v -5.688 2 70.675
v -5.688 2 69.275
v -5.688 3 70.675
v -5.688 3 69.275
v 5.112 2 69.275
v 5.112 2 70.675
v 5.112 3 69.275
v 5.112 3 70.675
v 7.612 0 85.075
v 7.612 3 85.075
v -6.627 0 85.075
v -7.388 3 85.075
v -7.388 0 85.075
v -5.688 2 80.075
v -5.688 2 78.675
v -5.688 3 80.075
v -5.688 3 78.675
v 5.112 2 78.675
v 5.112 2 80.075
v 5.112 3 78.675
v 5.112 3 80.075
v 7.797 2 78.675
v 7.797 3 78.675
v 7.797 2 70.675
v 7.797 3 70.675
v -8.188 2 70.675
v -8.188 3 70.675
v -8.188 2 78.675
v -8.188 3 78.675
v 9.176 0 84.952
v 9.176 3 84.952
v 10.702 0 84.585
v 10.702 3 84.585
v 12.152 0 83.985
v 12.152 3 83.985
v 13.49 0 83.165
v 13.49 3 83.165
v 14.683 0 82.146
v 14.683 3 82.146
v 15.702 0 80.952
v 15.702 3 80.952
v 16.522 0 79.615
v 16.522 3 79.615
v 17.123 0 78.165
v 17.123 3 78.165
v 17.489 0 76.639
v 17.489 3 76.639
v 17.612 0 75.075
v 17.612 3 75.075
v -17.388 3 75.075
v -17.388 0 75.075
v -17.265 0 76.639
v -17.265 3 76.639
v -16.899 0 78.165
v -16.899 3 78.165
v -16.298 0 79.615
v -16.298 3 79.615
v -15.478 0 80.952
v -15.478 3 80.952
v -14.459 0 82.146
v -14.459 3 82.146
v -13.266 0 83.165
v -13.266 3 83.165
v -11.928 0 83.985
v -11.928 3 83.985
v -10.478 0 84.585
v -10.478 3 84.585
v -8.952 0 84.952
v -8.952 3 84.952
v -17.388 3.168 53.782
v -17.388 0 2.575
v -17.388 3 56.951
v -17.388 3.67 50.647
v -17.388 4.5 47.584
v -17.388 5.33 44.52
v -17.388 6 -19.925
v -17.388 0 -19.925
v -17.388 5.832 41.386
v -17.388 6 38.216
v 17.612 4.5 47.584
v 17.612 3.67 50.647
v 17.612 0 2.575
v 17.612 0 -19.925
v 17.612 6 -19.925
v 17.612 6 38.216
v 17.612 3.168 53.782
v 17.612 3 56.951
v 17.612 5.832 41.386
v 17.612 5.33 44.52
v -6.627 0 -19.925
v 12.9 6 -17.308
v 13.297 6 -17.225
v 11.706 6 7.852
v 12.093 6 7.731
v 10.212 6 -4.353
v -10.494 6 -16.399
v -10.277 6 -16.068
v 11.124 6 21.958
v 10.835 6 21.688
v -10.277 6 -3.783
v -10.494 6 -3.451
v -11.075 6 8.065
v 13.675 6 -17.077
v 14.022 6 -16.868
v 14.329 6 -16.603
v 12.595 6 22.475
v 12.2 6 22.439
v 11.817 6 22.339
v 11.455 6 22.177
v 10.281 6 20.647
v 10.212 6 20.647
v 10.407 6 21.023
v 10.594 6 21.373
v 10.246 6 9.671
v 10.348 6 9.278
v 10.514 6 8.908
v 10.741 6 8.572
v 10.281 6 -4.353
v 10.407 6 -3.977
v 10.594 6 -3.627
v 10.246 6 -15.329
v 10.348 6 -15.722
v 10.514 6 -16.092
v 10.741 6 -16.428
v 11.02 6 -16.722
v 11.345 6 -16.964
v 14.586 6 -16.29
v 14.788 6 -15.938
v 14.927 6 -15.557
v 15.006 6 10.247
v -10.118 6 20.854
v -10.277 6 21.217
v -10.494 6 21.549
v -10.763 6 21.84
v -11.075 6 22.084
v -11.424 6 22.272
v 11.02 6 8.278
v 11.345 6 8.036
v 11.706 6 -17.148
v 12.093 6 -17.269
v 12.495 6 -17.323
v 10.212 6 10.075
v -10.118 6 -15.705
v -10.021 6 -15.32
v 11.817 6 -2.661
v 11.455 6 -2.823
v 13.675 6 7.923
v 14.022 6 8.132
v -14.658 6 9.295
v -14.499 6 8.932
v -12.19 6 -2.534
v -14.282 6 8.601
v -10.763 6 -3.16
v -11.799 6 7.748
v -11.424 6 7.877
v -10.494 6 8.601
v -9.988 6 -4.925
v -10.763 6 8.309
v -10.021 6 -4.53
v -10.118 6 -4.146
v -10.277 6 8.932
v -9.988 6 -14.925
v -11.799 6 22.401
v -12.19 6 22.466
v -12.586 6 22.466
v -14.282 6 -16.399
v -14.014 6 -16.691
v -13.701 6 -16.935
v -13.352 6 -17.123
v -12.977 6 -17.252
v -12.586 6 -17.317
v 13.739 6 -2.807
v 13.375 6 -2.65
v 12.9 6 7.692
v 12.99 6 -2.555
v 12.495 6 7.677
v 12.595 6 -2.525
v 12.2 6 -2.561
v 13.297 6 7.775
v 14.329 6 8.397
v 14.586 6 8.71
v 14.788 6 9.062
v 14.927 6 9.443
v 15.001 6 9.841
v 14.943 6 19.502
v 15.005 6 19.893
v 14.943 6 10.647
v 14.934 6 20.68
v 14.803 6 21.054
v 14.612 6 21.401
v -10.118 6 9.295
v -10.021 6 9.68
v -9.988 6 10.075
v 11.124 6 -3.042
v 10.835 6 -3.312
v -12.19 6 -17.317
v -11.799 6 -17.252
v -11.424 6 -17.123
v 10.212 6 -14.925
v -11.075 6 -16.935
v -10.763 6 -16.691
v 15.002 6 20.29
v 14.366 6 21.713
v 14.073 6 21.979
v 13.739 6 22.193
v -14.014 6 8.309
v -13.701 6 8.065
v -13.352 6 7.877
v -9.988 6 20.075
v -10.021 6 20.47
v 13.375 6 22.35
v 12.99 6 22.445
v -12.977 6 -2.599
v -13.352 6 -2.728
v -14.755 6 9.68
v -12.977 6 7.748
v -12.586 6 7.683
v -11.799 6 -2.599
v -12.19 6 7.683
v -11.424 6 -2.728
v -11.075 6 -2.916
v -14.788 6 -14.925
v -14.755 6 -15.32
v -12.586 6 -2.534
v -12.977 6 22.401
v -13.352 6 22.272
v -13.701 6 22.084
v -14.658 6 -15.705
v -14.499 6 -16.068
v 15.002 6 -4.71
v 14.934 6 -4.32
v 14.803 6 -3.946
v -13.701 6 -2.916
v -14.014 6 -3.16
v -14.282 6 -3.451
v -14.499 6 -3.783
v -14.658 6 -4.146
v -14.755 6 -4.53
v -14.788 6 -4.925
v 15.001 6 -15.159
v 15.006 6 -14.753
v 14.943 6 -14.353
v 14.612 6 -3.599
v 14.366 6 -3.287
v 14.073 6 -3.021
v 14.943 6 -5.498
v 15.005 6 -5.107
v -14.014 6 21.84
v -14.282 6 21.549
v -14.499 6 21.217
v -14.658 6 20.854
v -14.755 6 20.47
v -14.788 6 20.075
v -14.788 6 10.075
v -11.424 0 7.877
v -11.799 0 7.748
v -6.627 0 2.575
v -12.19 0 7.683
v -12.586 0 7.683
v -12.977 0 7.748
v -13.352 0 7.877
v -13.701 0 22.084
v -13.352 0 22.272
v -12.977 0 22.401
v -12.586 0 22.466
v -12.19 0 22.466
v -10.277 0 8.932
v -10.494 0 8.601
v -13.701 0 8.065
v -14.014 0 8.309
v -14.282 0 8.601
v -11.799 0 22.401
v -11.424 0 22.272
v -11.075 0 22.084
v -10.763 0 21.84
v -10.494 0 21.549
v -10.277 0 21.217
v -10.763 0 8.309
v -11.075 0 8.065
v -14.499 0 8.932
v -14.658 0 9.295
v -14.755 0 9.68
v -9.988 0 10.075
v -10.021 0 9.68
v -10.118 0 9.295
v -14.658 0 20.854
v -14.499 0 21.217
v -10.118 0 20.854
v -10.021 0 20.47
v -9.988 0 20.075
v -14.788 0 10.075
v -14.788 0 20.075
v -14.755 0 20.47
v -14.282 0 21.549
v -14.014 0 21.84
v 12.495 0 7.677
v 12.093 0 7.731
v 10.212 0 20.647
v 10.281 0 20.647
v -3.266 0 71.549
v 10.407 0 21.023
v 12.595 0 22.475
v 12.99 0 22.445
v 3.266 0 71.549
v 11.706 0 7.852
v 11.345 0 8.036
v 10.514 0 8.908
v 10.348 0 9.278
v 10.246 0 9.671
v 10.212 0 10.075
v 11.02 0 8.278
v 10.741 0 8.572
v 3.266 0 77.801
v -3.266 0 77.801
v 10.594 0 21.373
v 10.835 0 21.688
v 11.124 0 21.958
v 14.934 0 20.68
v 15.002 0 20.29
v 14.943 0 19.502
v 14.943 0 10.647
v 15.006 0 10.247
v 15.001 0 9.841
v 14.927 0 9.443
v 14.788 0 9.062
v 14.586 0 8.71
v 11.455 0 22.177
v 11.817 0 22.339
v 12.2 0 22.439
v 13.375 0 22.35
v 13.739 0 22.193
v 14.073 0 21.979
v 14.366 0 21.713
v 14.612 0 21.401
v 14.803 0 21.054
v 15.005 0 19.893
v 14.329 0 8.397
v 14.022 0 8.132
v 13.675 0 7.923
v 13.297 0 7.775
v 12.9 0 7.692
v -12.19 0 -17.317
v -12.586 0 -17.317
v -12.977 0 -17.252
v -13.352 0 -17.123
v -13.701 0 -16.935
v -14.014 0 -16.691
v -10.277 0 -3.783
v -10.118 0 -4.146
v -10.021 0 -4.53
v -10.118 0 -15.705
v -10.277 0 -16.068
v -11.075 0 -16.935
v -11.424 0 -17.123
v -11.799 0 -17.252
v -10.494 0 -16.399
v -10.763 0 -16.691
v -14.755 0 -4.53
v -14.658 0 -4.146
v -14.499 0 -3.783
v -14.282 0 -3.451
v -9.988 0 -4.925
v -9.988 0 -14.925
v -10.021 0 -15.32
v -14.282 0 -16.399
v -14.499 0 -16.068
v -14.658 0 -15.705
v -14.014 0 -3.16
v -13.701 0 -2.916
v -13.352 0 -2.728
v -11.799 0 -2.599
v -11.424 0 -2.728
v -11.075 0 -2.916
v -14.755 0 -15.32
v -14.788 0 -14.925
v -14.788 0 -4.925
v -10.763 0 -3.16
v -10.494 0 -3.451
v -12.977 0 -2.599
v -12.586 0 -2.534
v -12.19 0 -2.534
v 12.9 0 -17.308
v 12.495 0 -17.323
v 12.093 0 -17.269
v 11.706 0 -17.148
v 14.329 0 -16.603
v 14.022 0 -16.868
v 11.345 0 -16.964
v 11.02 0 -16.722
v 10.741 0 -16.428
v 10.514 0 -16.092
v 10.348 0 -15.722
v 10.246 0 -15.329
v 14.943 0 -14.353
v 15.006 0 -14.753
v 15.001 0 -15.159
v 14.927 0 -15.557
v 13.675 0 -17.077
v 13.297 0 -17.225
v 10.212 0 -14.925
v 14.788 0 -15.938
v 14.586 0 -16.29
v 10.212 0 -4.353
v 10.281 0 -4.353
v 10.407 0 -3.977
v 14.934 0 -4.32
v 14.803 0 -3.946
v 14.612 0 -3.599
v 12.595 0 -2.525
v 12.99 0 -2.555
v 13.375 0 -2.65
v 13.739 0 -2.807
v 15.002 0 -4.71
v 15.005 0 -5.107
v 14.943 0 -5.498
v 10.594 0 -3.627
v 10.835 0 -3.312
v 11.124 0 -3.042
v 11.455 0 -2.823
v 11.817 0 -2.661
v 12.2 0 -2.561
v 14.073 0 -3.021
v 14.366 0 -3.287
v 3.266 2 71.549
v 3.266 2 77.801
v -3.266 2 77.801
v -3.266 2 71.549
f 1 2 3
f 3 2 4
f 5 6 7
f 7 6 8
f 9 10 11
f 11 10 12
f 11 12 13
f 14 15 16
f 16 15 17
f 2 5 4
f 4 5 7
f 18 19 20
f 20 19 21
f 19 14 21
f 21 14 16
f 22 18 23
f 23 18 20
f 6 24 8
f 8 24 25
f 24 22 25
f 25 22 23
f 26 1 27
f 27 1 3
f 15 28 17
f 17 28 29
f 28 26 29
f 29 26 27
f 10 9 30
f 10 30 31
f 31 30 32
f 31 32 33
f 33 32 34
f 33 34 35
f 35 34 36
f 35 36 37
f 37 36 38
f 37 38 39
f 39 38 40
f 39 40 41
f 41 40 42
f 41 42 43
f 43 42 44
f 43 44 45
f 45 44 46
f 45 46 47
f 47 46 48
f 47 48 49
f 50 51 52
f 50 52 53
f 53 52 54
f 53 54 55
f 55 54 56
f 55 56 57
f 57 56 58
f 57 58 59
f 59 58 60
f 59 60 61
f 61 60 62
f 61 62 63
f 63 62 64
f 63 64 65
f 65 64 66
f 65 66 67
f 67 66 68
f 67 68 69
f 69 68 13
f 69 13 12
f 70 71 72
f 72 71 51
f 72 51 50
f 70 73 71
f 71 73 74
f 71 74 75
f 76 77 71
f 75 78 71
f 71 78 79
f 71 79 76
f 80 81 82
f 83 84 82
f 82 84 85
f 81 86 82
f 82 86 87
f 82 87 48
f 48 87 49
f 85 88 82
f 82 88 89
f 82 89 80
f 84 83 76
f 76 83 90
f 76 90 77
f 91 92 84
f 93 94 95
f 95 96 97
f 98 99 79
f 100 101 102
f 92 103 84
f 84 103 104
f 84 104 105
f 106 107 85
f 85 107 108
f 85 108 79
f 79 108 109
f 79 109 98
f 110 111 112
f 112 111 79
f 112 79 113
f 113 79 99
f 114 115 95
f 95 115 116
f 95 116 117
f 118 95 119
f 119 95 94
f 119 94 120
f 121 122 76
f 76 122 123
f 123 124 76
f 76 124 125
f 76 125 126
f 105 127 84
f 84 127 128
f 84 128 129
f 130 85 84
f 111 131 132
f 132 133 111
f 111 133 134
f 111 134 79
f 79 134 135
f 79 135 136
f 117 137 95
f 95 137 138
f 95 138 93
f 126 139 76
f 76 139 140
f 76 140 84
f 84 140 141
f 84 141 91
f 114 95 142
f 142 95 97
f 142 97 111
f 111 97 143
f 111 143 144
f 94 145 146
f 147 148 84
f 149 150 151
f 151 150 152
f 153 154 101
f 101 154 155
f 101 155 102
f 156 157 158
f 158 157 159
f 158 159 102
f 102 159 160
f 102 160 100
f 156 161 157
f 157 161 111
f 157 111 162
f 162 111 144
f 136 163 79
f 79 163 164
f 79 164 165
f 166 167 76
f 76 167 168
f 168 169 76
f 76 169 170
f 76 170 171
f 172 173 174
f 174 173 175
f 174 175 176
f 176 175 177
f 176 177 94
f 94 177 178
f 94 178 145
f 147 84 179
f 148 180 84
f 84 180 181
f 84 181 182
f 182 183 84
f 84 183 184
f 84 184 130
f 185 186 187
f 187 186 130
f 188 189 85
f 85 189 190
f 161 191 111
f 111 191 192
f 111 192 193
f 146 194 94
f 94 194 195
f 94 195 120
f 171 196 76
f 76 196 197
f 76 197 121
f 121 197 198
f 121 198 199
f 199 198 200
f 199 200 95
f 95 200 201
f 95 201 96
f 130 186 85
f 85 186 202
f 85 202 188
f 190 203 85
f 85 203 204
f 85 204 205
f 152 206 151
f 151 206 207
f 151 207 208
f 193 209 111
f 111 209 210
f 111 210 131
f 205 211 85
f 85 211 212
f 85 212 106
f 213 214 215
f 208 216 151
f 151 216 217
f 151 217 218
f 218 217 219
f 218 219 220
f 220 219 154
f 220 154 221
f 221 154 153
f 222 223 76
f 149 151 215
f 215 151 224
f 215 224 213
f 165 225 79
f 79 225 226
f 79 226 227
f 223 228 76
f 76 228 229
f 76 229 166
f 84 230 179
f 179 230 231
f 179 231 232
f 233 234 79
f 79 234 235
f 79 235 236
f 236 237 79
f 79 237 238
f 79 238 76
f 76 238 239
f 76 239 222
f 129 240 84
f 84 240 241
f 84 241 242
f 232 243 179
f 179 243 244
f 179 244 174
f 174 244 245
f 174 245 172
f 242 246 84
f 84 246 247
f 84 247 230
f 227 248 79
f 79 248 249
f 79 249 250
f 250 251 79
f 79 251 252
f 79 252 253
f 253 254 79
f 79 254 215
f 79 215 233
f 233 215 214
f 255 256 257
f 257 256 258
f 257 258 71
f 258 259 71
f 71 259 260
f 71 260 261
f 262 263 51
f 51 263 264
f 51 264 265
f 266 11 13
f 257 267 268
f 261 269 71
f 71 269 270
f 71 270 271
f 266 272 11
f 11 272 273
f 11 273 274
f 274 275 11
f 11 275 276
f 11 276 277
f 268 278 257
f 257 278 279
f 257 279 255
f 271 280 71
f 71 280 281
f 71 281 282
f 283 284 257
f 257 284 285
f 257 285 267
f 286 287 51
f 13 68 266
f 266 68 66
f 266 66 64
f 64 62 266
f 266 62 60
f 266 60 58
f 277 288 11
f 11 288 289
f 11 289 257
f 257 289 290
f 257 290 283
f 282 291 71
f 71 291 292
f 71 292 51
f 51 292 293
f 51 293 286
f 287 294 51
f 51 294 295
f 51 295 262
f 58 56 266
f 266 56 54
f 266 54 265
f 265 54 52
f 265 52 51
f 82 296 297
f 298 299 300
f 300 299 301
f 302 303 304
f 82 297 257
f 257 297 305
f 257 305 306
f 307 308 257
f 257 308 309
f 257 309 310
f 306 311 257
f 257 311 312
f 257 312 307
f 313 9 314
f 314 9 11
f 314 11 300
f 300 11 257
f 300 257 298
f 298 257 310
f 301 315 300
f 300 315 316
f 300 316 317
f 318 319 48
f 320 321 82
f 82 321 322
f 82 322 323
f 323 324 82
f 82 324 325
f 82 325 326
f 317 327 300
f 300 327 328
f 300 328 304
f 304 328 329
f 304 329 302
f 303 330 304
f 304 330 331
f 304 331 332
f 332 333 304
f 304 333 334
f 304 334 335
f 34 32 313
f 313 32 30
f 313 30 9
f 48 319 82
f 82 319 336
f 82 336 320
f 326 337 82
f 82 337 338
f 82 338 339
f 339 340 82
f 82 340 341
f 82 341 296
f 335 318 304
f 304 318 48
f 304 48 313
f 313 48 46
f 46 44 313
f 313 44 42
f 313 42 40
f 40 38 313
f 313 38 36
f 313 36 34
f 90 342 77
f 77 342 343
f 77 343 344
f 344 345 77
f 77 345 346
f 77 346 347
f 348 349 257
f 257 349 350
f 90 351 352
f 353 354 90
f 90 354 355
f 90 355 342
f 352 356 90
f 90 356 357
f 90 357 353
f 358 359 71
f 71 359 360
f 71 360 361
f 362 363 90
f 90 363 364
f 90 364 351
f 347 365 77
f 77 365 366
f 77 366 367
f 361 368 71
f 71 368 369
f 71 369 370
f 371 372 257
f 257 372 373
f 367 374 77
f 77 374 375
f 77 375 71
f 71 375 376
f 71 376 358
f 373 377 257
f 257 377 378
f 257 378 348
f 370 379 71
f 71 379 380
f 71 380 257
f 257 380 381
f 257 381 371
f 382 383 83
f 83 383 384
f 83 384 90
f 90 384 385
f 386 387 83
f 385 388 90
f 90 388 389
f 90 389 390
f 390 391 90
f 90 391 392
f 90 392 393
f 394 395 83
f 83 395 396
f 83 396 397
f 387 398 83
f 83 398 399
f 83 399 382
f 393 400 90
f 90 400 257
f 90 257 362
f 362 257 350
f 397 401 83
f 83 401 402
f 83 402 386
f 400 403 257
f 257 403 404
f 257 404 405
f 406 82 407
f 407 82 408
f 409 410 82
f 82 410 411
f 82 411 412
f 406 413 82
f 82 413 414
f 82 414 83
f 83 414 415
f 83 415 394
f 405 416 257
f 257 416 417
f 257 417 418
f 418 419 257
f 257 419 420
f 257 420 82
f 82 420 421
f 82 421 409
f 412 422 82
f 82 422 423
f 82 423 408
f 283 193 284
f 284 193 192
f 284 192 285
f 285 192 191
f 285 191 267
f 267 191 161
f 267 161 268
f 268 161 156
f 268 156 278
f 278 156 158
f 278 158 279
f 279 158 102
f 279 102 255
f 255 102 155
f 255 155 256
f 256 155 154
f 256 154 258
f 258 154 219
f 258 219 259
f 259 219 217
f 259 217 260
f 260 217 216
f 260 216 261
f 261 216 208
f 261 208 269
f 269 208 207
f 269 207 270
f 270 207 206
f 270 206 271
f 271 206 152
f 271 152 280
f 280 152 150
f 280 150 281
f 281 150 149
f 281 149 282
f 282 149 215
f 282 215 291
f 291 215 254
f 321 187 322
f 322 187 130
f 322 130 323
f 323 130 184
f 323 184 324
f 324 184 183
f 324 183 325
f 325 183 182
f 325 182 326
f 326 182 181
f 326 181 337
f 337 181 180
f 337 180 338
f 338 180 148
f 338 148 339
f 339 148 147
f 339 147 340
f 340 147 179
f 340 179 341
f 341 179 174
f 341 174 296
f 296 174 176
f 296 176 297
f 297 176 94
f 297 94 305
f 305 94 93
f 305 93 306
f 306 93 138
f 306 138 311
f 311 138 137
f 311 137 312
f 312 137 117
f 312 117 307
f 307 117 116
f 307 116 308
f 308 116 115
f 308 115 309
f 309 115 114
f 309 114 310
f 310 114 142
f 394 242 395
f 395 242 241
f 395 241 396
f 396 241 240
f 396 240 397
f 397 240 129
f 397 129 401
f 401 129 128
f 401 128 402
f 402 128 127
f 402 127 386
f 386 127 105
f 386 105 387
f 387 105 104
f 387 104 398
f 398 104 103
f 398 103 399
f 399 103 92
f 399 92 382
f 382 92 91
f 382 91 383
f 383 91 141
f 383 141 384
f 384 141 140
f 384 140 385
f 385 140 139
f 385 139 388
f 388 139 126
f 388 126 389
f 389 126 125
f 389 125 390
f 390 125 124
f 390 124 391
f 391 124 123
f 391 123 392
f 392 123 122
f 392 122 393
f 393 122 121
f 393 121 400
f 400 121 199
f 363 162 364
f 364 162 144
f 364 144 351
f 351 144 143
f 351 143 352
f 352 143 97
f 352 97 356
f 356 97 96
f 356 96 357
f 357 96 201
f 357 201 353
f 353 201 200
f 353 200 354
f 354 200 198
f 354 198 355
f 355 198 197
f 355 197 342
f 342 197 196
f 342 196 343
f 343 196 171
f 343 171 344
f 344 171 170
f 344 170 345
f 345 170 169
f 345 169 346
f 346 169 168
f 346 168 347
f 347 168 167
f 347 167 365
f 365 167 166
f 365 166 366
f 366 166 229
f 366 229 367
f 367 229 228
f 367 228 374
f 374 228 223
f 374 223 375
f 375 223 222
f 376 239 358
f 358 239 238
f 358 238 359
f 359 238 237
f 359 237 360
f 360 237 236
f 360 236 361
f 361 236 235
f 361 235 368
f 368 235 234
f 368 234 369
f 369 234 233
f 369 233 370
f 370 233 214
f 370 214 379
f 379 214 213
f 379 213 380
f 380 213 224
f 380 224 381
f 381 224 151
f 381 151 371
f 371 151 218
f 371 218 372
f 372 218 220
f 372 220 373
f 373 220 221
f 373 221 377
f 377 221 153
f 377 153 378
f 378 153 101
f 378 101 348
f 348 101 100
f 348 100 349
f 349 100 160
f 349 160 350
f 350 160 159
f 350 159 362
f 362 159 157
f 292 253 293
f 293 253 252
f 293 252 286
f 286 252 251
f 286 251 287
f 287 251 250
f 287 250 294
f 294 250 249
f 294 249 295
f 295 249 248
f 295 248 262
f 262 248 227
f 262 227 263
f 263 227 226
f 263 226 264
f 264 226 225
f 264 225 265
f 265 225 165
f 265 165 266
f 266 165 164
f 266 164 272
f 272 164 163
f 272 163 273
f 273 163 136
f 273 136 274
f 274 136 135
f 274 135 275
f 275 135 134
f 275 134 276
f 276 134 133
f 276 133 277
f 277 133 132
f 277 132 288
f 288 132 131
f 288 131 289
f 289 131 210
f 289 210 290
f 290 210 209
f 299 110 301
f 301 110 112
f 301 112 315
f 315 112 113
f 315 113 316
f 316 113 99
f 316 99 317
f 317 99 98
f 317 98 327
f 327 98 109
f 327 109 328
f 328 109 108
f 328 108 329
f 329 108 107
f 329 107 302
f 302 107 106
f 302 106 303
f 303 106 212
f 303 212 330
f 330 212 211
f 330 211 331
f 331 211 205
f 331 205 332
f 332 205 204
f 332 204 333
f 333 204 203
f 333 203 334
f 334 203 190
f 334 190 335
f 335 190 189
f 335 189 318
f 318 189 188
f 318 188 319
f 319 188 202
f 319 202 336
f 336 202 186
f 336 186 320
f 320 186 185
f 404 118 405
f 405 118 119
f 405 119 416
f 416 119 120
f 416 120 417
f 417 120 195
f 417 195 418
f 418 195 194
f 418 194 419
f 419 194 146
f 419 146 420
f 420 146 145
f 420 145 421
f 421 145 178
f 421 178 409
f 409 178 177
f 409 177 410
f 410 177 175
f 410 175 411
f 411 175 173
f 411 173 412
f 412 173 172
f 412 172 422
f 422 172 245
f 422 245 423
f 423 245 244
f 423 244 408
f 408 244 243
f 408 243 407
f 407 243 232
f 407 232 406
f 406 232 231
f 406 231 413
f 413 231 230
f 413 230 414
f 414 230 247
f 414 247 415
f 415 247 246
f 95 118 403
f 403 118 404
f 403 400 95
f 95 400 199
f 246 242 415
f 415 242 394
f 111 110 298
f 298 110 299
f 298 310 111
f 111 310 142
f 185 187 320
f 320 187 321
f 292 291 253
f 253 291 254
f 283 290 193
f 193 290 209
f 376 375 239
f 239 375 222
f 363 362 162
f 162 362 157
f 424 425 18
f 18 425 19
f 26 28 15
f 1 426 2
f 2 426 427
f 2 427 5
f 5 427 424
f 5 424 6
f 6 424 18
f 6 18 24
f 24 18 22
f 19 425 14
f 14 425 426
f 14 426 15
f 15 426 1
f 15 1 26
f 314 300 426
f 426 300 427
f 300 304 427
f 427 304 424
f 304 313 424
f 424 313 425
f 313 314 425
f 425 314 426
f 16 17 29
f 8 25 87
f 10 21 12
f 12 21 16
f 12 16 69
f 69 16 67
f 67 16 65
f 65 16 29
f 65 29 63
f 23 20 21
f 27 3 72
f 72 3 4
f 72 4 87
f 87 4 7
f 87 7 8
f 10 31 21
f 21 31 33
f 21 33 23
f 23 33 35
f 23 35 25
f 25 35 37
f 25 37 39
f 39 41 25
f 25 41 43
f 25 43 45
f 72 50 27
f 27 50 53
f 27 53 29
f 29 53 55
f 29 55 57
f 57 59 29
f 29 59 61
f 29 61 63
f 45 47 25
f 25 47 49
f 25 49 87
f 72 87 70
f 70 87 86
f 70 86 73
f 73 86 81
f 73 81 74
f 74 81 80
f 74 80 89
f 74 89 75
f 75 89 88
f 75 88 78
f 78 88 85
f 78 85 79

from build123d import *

# Parameters (mm, degrees)
SKETCH1_W            = 35
SKETCH1_H            = 105
BOSS_EXTRUDE1_DEPTH  = 6
M4_CLEARANCE_HOLE1_D = 4.8
LPATTERN2_COUNT      = 2
LPATTERN2_PITCH      = 10
SKETCH5_W            = 4.8
SKETCH5_H            = 10
SKETCH5_W_2          = 4.730666207
SKETCH5_H_2          = 10.572708501
CUT_EXTRUDE1_DEPTH   = 88.085432636
SKETCH6_W            = 10.8
SKETCH6_H            = 10.8
CUT_EXTRUDE2_DEPTH   = 4
SKETCH7_W            = 6.531210434
SKETCH7_H            = 6.251826861
CUT_EXTRUDE3_DEPTH   = 87.970527062
SKETCH8_W            = 15.98460087
SKETCH8_H            = 8
CUT_EXTRUDE4_DEPTH   = 4
FILLET1_R            = 10
CUT_EXTRUDE5_START   = -6
SKETCH9_W            = 37.049954943
SKETCH9_H            = 41.2
CUT_EXTRUDE5_DEPTH   = 3
FILLET2_R            = 30
FILLET3_R            = 30


with BuildPart() as part:
    # Sketch1 → Boss-Extrude1 (new body)
    with BuildSketch(Plane(origin=(0, 0, 0), x_dir=(1, 0, 0), z_dir=(0, 1, 0))):
        with Locations((0.111940299, -32.574626866)):
            Rectangle(SKETCH1_W, SKETCH1_H)
    extrude(amount=BOSS_EXTRUDE1_DEPTH)

    # M4 Clearance Hole1 (through all)
    with Locations(Plane(origin=(0, 6, 0), x_dir=(1, 0, 0), z_dir=(0, 1, 0))):
        with Locations((-12.388059701, 14.925373134), (12.611940299, 14.925373134), (12.611940299, -10.074626866), (-12.388059701, -10.074626866)):
            m4_clearance_hole1 = Hole(M4_CLEARANCE_HOLE1_D / 2)

    # LPattern2: M4 Clearance Hole1 ×2
    with Locations(*[(0, 0, i * LPATTERN2_PITCH) for i in range(1, LPATTERN2_COUNT)]):
        add(m4_clearance_hole1, mode=Mode.SUBTRACT)

    # Sketch5 → Cut-Extrude1 (cut, through all)
    with BuildSketch(Plane(origin=(0, 6, 0), x_dir=(1, 0, 0), z_dir=(0, 1, 0))):
        with Locations((-12.388059701, 9.925373134)):
            Rectangle(SKETCH5_W, SKETCH5_H)
        with Locations((-12.388059701, -15.074626866)):
            Rectangle(SKETCH5_W, SKETCH5_H)
        with Locations((12.577273403, 9.639018884)):
            Rectangle(SKETCH5_W_2, SKETCH5_H_2)
        with Locations((12.577273403, -15.360981116)):
            Rectangle(SKETCH5_W_2, SKETCH5_H_2)
    extrude(amount=-CUT_EXTRUDE1_DEPTH, mode=Mode.SUBTRACT)

    # Sketch6 → Cut-Extrude2 (cut)
    with BuildSketch(Plane(origin=(0, 6, 0), x_dir=(1, 0, 0), z_dir=(0, 1, 0))):
        with Locations((-0.288059701, -74.674626866)):
            Rectangle(SKETCH6_W, SKETCH6_H)
    extrude(amount=-CUT_EXTRUDE2_DEPTH, mode=Mode.SUBTRACT)

    # Sketch7 → Cut-Extrude3 (cut, through all)
    with BuildSketch(Plane(origin=(0, 2, 0), x_dir=(1, 0, 0), z_dir=(0, 1, 0))):
        with Locations((0, -74.674626866)):
            Rectangle(SKETCH7_W, SKETCH7_H)
    extrude(amount=-CUT_EXTRUDE3_DEPTH, mode=Mode.SUBTRACT)

    # Sketch8 → Cut-Extrude4 (cut)
    with BuildSketch(Plane(origin=(0, 6, 0), x_dir=(1, 0, 0), z_dir=(0, 1, 0))):
        with Locations((-0.195759266, -74.674626866)):
            Rectangle(SKETCH8_W, SKETCH8_H)
    extrude(amount=-CUT_EXTRUDE4_DEPTH, mode=Mode.SUBTRACT)

    # Fillet1
    fillet1_edges = [part.edges().sort_by_distance(p)[0] for p in [
        (17.611940299, 3, 85.074626866),
        (-17.388059701, 3, 85.074626866),
    ]]
    fillet(fillet1_edges, radius=FILLET1_R)

    # Sketch9 → Cut-Extrude5 (cut)
    with BuildSketch(Plane.XZ.offset(CUT_EXTRUDE5_START)):
        with Locations((1.136917771, 64.474626866)):
            Rectangle(SKETCH9_W, SKETCH9_H)
    extrude(amount=CUT_EXTRUDE5_DEPTH, mode=Mode.SUBTRACT)

    # Fillet2
    # the kernel refuses this fillet: 30 mm, written as the material it adds along each edge
    with BuildSketch(Plane(origin=(-17.388059701, 3, 43.874626866), x_dir=(0, 1, 0), z_dir=(1, 0, 0))) as fillet2_piece_1:
        with BuildLine():
            CenterArc((30, 13.076696831), FILLET2_R, 180, 25.841932763)
            Line((0, 13.076696831), (-0.6, 13.076696831))
            Line((-0.6, 13.076696831), (-0.6, 0))
            Line((-0.6, 0), (0, -0.6))
            ThreePointArc((0, -0.6), (1.5, -0.6), (2.46, -0.261533937))
            Line((2.46, -0.261533937), (3, 0))
        make_face()
    extrude(amount=35)

    # Fillet3
    fillet3_edges = [part.edges().sort_by_distance(p)[0] for p in [
        (0.111940299, 6, 43.874626866),
    ]]
    fillet(fillet3_edges, radius=FILLET3_R)


solid = part.part
